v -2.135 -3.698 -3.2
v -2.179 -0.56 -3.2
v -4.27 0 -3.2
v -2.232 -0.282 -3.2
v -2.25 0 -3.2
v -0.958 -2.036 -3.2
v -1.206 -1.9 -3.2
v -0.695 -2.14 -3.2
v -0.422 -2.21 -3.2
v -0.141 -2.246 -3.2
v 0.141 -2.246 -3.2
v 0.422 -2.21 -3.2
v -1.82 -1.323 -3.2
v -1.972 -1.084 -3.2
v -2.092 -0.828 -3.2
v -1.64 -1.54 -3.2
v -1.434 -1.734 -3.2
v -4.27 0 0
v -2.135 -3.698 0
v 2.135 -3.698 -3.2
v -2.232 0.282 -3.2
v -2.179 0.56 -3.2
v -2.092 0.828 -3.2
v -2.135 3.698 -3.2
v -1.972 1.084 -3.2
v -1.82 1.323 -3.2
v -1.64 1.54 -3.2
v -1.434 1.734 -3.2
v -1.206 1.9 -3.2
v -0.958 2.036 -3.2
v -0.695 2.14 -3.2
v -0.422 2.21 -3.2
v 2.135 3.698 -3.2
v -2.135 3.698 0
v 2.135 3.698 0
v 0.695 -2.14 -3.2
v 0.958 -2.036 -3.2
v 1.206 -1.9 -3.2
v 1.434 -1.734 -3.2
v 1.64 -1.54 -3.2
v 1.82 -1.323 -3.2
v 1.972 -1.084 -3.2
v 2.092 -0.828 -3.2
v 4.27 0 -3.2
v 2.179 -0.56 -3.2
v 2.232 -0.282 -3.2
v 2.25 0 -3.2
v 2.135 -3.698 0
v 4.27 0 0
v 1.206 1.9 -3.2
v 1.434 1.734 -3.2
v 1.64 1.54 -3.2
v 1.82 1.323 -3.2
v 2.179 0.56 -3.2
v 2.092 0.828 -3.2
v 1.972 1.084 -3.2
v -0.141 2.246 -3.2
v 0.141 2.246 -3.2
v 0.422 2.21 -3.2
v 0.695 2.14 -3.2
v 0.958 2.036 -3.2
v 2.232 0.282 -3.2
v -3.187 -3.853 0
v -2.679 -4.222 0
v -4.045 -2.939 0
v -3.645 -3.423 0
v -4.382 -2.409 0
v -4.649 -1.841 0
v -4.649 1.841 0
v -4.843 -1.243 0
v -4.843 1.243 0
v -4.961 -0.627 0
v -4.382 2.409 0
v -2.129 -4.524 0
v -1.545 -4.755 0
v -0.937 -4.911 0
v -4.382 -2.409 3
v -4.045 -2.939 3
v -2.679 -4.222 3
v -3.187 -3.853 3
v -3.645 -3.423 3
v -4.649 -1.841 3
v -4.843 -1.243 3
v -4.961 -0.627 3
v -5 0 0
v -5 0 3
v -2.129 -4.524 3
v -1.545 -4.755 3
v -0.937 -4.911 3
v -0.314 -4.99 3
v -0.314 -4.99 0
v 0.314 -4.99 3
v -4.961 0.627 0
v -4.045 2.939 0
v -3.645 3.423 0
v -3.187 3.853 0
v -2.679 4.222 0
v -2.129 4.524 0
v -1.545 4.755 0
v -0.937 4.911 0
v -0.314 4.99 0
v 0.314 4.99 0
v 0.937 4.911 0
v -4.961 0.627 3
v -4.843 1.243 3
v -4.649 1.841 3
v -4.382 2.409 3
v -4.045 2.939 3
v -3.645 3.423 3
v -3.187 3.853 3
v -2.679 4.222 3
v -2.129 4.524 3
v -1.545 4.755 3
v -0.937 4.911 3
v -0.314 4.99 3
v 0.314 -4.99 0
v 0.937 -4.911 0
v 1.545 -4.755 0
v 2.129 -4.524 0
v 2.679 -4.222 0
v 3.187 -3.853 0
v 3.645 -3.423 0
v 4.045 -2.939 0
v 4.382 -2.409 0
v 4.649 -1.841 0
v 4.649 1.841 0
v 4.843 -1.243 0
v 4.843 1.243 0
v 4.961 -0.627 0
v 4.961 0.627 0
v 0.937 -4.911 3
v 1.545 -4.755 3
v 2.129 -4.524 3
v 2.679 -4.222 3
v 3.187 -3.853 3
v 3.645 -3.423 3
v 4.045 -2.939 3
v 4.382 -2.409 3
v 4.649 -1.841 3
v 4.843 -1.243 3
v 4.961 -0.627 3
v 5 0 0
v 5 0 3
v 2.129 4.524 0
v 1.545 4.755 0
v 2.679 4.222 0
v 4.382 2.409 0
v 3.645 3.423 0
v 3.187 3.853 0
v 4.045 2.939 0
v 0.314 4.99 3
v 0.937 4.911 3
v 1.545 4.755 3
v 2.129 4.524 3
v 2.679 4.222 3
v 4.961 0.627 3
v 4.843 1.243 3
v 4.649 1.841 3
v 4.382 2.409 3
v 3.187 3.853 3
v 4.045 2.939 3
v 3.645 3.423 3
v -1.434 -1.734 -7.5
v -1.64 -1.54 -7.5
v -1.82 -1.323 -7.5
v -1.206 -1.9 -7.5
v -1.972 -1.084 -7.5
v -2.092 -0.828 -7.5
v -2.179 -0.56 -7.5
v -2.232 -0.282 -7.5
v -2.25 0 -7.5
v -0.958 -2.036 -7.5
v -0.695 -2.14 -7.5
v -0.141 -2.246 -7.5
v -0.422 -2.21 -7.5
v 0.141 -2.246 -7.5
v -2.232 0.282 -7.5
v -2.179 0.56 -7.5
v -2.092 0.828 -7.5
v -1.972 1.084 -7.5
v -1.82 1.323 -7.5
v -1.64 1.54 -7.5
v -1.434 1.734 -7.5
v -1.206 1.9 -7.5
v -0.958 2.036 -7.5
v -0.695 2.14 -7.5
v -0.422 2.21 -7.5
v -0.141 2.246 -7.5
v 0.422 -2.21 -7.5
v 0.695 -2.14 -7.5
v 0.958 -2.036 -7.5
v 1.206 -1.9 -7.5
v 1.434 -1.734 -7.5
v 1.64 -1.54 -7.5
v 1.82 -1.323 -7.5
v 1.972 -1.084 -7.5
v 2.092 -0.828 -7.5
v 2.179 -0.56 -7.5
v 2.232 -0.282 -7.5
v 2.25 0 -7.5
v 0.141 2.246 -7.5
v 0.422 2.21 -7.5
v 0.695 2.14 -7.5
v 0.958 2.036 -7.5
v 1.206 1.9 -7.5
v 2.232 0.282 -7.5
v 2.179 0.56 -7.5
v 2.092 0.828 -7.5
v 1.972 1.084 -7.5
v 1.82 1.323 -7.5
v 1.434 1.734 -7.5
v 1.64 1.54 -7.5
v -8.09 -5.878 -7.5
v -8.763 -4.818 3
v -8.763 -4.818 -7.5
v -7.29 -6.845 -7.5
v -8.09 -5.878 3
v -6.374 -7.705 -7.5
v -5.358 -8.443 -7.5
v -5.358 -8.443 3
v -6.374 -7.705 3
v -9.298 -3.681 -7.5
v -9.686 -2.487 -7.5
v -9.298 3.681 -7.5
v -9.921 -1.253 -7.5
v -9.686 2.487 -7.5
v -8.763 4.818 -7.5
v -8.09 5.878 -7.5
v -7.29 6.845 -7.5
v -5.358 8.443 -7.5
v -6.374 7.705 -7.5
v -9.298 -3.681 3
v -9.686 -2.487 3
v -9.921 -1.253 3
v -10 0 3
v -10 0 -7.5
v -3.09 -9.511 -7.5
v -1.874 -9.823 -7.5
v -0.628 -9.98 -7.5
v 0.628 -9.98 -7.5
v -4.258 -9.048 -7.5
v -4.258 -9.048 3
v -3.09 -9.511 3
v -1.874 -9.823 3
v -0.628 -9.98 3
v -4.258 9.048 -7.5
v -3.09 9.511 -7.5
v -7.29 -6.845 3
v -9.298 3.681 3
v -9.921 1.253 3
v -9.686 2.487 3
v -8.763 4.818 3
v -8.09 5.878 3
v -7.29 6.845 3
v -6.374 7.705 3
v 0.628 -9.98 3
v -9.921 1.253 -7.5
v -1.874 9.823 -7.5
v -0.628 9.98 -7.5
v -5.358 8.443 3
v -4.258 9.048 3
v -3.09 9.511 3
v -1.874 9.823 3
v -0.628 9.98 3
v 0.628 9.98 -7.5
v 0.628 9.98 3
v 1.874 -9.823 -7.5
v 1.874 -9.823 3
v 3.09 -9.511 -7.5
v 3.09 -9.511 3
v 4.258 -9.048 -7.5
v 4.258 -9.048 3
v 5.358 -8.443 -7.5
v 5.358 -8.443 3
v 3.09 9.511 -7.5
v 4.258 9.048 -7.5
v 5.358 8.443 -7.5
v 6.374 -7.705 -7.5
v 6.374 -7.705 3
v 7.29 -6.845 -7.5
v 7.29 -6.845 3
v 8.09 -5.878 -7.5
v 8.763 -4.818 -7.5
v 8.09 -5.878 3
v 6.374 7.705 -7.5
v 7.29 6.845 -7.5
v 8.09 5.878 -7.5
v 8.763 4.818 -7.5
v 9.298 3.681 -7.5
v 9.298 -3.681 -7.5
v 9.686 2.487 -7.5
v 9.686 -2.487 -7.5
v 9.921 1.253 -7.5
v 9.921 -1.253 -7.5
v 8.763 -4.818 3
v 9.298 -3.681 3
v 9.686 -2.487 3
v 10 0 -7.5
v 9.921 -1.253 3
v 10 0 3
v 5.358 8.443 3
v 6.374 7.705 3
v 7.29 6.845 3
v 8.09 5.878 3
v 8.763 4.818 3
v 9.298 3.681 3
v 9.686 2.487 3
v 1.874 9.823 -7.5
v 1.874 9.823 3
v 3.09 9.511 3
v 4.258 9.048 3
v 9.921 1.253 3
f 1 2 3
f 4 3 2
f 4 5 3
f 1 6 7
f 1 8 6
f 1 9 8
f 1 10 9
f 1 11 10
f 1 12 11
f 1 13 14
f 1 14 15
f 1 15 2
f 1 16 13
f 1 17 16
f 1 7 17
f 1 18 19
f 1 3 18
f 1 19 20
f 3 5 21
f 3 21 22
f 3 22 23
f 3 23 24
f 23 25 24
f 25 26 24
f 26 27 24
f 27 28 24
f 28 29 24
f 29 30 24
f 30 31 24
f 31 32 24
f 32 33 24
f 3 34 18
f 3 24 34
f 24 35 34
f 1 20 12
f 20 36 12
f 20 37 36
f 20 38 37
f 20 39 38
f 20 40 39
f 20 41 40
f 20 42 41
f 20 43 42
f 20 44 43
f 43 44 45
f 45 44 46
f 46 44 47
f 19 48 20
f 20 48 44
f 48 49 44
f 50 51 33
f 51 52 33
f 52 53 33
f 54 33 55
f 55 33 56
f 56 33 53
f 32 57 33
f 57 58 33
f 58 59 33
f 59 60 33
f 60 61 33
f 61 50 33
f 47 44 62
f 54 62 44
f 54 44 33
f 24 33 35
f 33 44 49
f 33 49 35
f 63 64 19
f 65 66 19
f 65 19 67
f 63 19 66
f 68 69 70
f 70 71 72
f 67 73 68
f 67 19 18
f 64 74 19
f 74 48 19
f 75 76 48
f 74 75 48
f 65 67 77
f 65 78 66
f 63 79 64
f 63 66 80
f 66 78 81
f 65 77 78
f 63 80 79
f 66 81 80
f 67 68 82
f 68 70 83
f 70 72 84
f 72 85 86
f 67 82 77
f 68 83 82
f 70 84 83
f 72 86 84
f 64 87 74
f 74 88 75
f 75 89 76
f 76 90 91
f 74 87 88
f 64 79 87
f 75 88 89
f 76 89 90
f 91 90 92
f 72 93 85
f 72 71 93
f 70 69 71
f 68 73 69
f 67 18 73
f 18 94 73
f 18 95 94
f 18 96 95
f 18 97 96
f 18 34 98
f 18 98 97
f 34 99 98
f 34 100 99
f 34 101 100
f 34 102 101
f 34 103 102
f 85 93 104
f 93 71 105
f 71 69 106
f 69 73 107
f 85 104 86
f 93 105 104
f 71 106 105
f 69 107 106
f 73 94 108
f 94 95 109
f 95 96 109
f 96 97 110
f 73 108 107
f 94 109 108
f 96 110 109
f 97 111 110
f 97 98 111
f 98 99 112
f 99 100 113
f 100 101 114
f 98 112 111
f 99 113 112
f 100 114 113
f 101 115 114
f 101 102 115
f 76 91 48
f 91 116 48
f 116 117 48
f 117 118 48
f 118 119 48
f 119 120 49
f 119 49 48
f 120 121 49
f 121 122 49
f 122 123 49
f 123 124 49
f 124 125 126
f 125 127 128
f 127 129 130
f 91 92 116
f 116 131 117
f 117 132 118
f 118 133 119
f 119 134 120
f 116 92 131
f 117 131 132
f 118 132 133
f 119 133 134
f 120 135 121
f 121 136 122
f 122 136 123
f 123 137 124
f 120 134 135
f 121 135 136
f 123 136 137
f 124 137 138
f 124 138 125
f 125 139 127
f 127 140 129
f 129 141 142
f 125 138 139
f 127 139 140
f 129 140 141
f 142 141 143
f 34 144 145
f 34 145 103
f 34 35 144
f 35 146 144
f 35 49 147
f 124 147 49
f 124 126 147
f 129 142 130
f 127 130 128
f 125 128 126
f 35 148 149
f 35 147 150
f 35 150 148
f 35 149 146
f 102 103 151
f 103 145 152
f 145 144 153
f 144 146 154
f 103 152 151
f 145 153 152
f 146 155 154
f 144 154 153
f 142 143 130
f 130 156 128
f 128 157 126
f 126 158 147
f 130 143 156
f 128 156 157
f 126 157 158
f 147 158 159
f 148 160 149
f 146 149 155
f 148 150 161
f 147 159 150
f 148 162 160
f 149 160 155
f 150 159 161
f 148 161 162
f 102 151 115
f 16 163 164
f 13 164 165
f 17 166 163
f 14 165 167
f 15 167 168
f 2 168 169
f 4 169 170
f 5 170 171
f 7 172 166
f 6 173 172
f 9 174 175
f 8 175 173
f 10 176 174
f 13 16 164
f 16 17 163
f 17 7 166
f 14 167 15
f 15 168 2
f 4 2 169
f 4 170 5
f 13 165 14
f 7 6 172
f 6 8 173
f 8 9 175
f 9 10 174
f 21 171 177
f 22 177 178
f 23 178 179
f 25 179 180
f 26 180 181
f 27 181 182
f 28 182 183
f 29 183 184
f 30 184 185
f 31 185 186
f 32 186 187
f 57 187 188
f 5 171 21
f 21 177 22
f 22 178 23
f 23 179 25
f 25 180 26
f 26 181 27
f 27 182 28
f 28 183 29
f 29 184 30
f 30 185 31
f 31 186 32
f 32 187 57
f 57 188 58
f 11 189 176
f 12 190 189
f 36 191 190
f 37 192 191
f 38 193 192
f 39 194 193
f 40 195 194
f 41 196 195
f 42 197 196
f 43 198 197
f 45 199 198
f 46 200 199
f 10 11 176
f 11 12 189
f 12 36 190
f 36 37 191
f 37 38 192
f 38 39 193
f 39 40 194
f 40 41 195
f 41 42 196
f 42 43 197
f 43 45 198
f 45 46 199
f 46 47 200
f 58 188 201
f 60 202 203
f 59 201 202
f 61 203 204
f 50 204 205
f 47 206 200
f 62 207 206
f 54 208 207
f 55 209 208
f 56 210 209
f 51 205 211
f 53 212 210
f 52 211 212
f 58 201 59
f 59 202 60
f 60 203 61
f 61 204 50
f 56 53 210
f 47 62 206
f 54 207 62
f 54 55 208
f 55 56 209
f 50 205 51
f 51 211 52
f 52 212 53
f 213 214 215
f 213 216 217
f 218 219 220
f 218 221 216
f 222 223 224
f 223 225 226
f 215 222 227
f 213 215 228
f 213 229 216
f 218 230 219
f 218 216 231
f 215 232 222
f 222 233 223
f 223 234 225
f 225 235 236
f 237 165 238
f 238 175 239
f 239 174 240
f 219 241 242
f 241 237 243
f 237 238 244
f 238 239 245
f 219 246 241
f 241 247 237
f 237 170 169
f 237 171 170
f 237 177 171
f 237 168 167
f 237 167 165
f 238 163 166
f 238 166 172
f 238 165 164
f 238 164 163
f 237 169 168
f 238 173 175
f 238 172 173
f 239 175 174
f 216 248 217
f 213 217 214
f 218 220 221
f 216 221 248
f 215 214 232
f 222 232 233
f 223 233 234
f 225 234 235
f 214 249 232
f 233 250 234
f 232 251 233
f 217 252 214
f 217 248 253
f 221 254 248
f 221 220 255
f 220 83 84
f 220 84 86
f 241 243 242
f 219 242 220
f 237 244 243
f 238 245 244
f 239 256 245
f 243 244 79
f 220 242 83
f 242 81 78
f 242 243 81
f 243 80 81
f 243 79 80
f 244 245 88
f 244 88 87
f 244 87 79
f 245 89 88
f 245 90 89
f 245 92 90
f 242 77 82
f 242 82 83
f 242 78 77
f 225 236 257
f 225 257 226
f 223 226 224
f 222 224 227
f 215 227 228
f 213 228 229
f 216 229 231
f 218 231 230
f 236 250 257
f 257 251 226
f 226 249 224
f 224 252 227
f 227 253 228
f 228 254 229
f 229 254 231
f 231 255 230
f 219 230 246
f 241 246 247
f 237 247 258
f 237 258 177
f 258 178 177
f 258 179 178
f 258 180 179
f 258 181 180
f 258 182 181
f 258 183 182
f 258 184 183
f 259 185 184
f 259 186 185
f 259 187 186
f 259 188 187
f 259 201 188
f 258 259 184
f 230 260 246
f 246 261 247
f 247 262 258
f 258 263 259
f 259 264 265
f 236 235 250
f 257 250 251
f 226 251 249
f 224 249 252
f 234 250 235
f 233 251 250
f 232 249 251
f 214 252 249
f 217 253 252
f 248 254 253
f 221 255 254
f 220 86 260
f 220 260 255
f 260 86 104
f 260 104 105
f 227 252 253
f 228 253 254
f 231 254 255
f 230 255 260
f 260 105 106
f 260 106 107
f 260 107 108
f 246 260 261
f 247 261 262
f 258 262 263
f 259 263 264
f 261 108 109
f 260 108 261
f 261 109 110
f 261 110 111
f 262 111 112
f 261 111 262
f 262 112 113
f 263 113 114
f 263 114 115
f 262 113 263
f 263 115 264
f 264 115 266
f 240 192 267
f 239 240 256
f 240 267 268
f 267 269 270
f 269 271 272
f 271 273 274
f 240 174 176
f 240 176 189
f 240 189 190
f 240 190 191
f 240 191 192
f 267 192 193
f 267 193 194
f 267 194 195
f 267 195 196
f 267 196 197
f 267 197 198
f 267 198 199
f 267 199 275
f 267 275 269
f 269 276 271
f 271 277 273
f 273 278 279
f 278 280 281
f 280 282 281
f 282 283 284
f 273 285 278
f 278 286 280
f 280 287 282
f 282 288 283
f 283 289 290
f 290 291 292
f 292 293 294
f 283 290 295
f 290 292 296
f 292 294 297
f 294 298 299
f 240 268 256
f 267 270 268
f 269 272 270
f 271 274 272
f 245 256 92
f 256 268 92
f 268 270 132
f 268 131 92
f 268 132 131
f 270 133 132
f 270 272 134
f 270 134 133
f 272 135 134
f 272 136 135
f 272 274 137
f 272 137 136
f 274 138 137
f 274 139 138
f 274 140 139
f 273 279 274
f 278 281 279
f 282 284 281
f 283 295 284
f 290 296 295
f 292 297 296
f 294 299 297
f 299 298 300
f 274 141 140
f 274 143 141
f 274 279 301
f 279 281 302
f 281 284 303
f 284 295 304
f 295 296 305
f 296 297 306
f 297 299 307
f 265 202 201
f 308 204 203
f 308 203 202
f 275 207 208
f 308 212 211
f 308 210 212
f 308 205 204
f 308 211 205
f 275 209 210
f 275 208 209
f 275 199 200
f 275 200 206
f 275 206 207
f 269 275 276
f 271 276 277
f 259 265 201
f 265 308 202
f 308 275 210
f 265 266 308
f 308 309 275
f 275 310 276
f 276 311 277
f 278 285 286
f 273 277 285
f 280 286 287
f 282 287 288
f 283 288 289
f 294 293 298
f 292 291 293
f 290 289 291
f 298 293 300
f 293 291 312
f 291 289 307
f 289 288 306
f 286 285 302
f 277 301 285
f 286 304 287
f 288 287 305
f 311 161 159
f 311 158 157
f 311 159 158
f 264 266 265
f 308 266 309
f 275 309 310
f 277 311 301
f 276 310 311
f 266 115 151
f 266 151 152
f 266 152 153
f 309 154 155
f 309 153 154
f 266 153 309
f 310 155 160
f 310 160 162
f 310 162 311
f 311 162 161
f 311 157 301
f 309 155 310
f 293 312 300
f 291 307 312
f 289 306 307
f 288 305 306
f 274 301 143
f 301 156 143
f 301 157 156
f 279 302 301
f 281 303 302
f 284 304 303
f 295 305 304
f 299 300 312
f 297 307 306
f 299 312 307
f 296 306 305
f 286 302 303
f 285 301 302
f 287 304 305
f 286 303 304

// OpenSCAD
$fn = 50;


difference() {
	union() {
		translate(v = [0, 0, -7.5000000000]) {
			cylinder(h = 10.5000000000, r = 10.0000000000);
		}
	}
	union() {
		translate(v = [0, 0, 0]) {
			rotate(a = [0, 0, 0]) {
				difference() {
					union() {
						translate(v = [0, 0, -3.2000000000]) {
							linear_extrude(height = 3.2000000000) {
								polygon(points = [[4.2698000000, 0.0000000000], [2.1349000000, 3.6977552691], [-2.1349000000, 3.6977552691], [-4.2698000000, 0.0000000000], [-2.1349000000, -3.6977552691], [2.1349000000, -3.6977552691]]);
							}
						}
					}
					union();
				}
			}
		}
		#cylinder(h = 3, r = 5.0000000000);
		#translate(v = [0, 0, -100.0000000000]) {
			cylinder(h = 200, r = 2.2500000000);
		}
	}
}
